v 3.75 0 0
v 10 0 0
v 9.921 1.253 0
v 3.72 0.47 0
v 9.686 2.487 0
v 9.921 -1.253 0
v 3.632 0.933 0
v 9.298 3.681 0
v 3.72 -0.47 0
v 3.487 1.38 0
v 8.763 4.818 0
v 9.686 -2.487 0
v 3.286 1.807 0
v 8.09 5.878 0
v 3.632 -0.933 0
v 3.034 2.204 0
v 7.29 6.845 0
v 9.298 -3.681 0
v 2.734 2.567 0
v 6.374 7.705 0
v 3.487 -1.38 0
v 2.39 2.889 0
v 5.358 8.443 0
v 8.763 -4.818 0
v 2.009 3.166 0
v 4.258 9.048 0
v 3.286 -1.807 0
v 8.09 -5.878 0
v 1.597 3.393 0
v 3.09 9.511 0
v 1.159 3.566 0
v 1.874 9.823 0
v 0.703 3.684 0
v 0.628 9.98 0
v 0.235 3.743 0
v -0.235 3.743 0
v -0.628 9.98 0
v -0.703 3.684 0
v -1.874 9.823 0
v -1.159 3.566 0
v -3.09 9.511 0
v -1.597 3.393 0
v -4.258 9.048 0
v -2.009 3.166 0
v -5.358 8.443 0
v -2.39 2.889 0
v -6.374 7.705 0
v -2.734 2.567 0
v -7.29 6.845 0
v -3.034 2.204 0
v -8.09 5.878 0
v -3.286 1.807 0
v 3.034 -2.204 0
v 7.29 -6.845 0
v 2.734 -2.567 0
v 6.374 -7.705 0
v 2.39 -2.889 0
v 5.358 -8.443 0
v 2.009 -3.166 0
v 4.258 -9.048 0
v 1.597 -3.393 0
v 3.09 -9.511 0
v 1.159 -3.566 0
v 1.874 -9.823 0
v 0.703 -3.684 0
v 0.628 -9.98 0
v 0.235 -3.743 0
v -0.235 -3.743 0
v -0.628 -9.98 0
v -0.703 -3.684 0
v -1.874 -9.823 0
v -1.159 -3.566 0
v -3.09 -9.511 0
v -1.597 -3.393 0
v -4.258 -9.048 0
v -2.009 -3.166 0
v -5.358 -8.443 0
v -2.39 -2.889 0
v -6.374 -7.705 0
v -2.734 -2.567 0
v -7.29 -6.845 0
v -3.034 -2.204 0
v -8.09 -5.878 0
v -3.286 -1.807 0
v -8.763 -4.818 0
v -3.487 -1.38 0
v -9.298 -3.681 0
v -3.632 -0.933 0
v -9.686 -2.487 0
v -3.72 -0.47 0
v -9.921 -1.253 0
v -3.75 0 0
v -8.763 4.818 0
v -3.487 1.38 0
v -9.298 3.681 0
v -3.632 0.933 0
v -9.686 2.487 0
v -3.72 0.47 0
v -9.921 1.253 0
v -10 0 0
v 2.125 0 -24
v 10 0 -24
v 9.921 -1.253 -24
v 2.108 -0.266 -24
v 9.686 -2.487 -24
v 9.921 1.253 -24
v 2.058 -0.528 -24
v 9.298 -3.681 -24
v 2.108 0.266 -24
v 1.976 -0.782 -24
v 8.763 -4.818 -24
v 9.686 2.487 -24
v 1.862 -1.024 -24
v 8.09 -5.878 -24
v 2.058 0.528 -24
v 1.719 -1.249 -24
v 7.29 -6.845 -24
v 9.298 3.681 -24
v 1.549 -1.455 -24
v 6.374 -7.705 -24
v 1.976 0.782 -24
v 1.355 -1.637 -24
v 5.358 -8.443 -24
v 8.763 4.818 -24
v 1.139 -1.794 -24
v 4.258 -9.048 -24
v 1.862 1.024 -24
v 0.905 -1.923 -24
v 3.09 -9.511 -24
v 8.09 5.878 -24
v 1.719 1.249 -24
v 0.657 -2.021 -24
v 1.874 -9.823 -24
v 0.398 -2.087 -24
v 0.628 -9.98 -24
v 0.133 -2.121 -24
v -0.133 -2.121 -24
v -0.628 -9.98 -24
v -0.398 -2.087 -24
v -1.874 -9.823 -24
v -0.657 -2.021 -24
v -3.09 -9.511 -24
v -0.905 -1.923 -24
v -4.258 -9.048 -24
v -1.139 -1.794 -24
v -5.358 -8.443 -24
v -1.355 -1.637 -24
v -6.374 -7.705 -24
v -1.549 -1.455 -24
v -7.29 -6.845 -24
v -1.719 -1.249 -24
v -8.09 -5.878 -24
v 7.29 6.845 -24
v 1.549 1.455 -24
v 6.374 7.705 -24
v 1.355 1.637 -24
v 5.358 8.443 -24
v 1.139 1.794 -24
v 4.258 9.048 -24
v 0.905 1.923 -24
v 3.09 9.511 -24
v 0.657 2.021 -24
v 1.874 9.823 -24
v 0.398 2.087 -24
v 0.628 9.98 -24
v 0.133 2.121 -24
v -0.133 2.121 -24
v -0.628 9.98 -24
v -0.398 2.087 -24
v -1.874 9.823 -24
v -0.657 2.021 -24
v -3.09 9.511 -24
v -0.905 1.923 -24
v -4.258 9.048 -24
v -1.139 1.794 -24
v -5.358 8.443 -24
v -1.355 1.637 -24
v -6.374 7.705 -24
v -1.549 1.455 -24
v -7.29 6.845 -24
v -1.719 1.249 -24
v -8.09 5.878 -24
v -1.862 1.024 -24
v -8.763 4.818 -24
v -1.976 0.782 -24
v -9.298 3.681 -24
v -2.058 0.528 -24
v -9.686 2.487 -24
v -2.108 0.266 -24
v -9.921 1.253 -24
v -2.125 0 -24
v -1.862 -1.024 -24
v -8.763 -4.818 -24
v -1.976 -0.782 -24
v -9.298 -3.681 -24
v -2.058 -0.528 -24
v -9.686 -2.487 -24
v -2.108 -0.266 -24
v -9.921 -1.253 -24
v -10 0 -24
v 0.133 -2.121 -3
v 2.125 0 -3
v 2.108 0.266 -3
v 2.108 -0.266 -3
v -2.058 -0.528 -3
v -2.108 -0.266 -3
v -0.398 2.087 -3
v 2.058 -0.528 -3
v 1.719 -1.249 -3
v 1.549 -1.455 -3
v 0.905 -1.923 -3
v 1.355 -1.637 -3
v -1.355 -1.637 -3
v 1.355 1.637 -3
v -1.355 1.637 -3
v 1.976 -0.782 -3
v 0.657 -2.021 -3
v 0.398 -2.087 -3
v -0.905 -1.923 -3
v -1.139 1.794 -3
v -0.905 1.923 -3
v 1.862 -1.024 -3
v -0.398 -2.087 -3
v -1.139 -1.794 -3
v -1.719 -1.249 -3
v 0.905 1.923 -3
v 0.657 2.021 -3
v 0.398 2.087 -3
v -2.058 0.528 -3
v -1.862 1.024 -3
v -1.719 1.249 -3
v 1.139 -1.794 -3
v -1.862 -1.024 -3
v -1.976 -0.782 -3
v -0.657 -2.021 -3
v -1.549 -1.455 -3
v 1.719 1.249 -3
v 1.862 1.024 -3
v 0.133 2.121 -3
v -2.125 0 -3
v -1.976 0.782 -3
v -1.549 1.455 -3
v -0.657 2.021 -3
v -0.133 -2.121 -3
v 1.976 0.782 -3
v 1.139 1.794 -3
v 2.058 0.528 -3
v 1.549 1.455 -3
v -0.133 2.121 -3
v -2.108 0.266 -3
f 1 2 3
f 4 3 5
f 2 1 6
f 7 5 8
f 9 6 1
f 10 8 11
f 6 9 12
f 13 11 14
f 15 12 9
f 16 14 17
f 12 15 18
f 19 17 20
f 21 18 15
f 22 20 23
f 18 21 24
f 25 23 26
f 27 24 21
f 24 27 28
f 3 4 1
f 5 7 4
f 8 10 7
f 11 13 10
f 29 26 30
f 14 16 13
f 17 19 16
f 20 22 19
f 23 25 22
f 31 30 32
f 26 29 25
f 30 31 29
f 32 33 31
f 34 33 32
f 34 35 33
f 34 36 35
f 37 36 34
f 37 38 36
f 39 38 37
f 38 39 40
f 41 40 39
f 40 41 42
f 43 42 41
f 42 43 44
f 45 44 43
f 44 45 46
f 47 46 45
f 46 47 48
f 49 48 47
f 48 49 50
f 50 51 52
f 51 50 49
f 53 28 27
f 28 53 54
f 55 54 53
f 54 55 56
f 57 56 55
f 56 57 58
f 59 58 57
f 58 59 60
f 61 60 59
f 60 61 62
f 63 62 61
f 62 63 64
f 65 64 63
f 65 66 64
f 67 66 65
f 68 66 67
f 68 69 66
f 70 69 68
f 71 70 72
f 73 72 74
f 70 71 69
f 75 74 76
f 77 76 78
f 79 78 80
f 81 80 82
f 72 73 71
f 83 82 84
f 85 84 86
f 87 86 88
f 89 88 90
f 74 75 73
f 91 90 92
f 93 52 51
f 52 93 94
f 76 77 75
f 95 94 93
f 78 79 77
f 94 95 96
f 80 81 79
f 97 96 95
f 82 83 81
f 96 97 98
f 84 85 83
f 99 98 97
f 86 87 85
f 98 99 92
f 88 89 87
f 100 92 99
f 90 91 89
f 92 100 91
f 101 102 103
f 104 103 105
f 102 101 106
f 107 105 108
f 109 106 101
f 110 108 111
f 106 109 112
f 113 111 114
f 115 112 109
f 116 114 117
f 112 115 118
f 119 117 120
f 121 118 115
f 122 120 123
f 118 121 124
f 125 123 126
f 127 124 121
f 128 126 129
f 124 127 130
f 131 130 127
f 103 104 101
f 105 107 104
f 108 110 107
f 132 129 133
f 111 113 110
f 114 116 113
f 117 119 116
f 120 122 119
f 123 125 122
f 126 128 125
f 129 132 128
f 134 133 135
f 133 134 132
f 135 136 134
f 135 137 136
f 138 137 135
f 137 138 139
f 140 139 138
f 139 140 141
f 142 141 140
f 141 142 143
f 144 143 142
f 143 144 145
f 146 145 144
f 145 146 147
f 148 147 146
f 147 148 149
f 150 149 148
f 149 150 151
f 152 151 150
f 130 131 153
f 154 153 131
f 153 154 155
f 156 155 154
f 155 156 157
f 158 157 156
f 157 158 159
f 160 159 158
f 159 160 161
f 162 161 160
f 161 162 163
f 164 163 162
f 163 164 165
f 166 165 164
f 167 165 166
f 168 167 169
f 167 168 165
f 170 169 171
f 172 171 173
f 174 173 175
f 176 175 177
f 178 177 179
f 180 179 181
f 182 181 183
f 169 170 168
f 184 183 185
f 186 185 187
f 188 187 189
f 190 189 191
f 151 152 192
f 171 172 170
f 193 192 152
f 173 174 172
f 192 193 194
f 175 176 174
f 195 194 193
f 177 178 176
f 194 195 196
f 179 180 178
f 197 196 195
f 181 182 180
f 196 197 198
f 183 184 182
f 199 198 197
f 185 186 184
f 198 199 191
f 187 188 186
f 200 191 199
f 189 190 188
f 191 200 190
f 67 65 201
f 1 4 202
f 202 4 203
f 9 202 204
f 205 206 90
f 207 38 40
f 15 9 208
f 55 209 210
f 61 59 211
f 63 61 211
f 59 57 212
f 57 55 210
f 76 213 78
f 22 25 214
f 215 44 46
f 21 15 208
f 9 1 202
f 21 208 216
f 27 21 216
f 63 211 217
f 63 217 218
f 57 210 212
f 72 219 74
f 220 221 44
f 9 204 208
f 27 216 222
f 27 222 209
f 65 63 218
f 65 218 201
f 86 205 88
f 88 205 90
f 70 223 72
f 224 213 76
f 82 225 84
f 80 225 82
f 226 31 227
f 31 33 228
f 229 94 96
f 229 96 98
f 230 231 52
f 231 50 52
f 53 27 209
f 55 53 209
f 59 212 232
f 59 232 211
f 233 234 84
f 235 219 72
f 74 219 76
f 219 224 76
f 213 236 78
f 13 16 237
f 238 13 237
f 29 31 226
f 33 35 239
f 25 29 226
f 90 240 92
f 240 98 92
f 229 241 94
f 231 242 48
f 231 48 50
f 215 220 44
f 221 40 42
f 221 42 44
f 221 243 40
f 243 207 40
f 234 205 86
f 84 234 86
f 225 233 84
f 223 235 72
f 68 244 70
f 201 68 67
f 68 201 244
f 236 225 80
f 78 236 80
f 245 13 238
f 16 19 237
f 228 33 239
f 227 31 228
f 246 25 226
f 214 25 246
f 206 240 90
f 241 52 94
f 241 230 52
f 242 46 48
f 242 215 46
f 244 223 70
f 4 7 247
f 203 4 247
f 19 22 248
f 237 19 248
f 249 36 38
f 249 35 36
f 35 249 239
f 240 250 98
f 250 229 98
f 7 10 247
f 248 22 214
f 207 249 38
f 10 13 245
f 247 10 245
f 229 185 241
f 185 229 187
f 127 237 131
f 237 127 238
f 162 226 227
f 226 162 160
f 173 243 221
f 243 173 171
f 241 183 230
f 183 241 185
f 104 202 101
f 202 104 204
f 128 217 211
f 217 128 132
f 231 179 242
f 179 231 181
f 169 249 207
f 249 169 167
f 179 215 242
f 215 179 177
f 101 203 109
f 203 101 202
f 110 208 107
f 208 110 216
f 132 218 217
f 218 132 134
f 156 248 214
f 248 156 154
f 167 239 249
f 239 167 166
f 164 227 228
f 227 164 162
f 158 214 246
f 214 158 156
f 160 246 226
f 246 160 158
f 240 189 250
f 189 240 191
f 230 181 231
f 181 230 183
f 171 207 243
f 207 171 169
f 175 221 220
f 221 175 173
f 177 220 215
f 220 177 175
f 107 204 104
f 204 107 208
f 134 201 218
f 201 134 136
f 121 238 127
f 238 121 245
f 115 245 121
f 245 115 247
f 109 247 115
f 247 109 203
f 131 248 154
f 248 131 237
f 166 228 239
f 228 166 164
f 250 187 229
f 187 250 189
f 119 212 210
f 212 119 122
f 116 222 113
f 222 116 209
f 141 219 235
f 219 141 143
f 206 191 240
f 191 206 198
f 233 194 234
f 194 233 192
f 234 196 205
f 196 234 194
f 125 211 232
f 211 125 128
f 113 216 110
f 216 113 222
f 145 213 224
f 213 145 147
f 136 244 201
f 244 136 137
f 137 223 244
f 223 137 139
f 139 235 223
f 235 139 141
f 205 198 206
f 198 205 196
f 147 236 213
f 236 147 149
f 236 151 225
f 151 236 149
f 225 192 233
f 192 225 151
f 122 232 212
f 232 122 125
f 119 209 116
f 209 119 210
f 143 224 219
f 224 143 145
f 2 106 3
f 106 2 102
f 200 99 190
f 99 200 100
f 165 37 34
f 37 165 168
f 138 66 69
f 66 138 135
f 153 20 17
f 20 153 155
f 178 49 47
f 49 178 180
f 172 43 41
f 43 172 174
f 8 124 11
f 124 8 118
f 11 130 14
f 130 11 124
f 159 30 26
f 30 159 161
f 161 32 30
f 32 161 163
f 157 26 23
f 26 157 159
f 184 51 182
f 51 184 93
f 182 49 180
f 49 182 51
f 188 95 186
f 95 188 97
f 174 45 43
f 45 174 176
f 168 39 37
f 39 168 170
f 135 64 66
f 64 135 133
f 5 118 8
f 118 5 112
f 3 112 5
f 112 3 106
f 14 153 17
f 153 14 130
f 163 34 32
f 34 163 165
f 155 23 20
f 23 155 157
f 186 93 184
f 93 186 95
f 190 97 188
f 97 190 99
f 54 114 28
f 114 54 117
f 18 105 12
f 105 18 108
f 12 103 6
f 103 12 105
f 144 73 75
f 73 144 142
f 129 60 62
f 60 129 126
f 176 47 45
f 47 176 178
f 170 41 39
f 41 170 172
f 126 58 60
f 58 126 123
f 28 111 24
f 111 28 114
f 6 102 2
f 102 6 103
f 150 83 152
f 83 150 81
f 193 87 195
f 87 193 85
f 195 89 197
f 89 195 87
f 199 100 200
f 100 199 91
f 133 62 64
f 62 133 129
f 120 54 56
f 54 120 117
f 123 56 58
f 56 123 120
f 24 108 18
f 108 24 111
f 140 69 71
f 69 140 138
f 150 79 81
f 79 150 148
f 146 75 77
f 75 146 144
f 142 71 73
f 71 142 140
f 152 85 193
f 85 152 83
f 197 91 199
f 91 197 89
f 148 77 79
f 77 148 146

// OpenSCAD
$fn = 50;


difference() {
	union() {
		translate(v = [0, 0, -24.0000000000]) {
			cylinder(h = 24, r = 10.0000000000);
		}
		cylinder(h = 0, r = 19.0000000000);
	}
	union() {
		translate(v = [0, 0, 0]) {
			rotate(a = [0, 0, 0]) {
				difference() {
					union() {
						#translate(v = [0, 0, -24.0000000000]) {
							cylinder(h = 24, r = 2.0000000000);
						}
						#translate(v = [0, 0, -3]) {
							cylinder(h = 3, r1 = 2.1250000000, r2 = 3.7500000000);
						}
						#translate(v = [0, 0, -24.0000000000]) {
							cylinder(h = 24, r = 2.1250000000);
						}
						#translate(v = [0, 0, -24.0000000000]) {
							cylinder(h = 24, r = 2.0000000000);
						}
					}
					union();
				}
			}
		}
	}
}
